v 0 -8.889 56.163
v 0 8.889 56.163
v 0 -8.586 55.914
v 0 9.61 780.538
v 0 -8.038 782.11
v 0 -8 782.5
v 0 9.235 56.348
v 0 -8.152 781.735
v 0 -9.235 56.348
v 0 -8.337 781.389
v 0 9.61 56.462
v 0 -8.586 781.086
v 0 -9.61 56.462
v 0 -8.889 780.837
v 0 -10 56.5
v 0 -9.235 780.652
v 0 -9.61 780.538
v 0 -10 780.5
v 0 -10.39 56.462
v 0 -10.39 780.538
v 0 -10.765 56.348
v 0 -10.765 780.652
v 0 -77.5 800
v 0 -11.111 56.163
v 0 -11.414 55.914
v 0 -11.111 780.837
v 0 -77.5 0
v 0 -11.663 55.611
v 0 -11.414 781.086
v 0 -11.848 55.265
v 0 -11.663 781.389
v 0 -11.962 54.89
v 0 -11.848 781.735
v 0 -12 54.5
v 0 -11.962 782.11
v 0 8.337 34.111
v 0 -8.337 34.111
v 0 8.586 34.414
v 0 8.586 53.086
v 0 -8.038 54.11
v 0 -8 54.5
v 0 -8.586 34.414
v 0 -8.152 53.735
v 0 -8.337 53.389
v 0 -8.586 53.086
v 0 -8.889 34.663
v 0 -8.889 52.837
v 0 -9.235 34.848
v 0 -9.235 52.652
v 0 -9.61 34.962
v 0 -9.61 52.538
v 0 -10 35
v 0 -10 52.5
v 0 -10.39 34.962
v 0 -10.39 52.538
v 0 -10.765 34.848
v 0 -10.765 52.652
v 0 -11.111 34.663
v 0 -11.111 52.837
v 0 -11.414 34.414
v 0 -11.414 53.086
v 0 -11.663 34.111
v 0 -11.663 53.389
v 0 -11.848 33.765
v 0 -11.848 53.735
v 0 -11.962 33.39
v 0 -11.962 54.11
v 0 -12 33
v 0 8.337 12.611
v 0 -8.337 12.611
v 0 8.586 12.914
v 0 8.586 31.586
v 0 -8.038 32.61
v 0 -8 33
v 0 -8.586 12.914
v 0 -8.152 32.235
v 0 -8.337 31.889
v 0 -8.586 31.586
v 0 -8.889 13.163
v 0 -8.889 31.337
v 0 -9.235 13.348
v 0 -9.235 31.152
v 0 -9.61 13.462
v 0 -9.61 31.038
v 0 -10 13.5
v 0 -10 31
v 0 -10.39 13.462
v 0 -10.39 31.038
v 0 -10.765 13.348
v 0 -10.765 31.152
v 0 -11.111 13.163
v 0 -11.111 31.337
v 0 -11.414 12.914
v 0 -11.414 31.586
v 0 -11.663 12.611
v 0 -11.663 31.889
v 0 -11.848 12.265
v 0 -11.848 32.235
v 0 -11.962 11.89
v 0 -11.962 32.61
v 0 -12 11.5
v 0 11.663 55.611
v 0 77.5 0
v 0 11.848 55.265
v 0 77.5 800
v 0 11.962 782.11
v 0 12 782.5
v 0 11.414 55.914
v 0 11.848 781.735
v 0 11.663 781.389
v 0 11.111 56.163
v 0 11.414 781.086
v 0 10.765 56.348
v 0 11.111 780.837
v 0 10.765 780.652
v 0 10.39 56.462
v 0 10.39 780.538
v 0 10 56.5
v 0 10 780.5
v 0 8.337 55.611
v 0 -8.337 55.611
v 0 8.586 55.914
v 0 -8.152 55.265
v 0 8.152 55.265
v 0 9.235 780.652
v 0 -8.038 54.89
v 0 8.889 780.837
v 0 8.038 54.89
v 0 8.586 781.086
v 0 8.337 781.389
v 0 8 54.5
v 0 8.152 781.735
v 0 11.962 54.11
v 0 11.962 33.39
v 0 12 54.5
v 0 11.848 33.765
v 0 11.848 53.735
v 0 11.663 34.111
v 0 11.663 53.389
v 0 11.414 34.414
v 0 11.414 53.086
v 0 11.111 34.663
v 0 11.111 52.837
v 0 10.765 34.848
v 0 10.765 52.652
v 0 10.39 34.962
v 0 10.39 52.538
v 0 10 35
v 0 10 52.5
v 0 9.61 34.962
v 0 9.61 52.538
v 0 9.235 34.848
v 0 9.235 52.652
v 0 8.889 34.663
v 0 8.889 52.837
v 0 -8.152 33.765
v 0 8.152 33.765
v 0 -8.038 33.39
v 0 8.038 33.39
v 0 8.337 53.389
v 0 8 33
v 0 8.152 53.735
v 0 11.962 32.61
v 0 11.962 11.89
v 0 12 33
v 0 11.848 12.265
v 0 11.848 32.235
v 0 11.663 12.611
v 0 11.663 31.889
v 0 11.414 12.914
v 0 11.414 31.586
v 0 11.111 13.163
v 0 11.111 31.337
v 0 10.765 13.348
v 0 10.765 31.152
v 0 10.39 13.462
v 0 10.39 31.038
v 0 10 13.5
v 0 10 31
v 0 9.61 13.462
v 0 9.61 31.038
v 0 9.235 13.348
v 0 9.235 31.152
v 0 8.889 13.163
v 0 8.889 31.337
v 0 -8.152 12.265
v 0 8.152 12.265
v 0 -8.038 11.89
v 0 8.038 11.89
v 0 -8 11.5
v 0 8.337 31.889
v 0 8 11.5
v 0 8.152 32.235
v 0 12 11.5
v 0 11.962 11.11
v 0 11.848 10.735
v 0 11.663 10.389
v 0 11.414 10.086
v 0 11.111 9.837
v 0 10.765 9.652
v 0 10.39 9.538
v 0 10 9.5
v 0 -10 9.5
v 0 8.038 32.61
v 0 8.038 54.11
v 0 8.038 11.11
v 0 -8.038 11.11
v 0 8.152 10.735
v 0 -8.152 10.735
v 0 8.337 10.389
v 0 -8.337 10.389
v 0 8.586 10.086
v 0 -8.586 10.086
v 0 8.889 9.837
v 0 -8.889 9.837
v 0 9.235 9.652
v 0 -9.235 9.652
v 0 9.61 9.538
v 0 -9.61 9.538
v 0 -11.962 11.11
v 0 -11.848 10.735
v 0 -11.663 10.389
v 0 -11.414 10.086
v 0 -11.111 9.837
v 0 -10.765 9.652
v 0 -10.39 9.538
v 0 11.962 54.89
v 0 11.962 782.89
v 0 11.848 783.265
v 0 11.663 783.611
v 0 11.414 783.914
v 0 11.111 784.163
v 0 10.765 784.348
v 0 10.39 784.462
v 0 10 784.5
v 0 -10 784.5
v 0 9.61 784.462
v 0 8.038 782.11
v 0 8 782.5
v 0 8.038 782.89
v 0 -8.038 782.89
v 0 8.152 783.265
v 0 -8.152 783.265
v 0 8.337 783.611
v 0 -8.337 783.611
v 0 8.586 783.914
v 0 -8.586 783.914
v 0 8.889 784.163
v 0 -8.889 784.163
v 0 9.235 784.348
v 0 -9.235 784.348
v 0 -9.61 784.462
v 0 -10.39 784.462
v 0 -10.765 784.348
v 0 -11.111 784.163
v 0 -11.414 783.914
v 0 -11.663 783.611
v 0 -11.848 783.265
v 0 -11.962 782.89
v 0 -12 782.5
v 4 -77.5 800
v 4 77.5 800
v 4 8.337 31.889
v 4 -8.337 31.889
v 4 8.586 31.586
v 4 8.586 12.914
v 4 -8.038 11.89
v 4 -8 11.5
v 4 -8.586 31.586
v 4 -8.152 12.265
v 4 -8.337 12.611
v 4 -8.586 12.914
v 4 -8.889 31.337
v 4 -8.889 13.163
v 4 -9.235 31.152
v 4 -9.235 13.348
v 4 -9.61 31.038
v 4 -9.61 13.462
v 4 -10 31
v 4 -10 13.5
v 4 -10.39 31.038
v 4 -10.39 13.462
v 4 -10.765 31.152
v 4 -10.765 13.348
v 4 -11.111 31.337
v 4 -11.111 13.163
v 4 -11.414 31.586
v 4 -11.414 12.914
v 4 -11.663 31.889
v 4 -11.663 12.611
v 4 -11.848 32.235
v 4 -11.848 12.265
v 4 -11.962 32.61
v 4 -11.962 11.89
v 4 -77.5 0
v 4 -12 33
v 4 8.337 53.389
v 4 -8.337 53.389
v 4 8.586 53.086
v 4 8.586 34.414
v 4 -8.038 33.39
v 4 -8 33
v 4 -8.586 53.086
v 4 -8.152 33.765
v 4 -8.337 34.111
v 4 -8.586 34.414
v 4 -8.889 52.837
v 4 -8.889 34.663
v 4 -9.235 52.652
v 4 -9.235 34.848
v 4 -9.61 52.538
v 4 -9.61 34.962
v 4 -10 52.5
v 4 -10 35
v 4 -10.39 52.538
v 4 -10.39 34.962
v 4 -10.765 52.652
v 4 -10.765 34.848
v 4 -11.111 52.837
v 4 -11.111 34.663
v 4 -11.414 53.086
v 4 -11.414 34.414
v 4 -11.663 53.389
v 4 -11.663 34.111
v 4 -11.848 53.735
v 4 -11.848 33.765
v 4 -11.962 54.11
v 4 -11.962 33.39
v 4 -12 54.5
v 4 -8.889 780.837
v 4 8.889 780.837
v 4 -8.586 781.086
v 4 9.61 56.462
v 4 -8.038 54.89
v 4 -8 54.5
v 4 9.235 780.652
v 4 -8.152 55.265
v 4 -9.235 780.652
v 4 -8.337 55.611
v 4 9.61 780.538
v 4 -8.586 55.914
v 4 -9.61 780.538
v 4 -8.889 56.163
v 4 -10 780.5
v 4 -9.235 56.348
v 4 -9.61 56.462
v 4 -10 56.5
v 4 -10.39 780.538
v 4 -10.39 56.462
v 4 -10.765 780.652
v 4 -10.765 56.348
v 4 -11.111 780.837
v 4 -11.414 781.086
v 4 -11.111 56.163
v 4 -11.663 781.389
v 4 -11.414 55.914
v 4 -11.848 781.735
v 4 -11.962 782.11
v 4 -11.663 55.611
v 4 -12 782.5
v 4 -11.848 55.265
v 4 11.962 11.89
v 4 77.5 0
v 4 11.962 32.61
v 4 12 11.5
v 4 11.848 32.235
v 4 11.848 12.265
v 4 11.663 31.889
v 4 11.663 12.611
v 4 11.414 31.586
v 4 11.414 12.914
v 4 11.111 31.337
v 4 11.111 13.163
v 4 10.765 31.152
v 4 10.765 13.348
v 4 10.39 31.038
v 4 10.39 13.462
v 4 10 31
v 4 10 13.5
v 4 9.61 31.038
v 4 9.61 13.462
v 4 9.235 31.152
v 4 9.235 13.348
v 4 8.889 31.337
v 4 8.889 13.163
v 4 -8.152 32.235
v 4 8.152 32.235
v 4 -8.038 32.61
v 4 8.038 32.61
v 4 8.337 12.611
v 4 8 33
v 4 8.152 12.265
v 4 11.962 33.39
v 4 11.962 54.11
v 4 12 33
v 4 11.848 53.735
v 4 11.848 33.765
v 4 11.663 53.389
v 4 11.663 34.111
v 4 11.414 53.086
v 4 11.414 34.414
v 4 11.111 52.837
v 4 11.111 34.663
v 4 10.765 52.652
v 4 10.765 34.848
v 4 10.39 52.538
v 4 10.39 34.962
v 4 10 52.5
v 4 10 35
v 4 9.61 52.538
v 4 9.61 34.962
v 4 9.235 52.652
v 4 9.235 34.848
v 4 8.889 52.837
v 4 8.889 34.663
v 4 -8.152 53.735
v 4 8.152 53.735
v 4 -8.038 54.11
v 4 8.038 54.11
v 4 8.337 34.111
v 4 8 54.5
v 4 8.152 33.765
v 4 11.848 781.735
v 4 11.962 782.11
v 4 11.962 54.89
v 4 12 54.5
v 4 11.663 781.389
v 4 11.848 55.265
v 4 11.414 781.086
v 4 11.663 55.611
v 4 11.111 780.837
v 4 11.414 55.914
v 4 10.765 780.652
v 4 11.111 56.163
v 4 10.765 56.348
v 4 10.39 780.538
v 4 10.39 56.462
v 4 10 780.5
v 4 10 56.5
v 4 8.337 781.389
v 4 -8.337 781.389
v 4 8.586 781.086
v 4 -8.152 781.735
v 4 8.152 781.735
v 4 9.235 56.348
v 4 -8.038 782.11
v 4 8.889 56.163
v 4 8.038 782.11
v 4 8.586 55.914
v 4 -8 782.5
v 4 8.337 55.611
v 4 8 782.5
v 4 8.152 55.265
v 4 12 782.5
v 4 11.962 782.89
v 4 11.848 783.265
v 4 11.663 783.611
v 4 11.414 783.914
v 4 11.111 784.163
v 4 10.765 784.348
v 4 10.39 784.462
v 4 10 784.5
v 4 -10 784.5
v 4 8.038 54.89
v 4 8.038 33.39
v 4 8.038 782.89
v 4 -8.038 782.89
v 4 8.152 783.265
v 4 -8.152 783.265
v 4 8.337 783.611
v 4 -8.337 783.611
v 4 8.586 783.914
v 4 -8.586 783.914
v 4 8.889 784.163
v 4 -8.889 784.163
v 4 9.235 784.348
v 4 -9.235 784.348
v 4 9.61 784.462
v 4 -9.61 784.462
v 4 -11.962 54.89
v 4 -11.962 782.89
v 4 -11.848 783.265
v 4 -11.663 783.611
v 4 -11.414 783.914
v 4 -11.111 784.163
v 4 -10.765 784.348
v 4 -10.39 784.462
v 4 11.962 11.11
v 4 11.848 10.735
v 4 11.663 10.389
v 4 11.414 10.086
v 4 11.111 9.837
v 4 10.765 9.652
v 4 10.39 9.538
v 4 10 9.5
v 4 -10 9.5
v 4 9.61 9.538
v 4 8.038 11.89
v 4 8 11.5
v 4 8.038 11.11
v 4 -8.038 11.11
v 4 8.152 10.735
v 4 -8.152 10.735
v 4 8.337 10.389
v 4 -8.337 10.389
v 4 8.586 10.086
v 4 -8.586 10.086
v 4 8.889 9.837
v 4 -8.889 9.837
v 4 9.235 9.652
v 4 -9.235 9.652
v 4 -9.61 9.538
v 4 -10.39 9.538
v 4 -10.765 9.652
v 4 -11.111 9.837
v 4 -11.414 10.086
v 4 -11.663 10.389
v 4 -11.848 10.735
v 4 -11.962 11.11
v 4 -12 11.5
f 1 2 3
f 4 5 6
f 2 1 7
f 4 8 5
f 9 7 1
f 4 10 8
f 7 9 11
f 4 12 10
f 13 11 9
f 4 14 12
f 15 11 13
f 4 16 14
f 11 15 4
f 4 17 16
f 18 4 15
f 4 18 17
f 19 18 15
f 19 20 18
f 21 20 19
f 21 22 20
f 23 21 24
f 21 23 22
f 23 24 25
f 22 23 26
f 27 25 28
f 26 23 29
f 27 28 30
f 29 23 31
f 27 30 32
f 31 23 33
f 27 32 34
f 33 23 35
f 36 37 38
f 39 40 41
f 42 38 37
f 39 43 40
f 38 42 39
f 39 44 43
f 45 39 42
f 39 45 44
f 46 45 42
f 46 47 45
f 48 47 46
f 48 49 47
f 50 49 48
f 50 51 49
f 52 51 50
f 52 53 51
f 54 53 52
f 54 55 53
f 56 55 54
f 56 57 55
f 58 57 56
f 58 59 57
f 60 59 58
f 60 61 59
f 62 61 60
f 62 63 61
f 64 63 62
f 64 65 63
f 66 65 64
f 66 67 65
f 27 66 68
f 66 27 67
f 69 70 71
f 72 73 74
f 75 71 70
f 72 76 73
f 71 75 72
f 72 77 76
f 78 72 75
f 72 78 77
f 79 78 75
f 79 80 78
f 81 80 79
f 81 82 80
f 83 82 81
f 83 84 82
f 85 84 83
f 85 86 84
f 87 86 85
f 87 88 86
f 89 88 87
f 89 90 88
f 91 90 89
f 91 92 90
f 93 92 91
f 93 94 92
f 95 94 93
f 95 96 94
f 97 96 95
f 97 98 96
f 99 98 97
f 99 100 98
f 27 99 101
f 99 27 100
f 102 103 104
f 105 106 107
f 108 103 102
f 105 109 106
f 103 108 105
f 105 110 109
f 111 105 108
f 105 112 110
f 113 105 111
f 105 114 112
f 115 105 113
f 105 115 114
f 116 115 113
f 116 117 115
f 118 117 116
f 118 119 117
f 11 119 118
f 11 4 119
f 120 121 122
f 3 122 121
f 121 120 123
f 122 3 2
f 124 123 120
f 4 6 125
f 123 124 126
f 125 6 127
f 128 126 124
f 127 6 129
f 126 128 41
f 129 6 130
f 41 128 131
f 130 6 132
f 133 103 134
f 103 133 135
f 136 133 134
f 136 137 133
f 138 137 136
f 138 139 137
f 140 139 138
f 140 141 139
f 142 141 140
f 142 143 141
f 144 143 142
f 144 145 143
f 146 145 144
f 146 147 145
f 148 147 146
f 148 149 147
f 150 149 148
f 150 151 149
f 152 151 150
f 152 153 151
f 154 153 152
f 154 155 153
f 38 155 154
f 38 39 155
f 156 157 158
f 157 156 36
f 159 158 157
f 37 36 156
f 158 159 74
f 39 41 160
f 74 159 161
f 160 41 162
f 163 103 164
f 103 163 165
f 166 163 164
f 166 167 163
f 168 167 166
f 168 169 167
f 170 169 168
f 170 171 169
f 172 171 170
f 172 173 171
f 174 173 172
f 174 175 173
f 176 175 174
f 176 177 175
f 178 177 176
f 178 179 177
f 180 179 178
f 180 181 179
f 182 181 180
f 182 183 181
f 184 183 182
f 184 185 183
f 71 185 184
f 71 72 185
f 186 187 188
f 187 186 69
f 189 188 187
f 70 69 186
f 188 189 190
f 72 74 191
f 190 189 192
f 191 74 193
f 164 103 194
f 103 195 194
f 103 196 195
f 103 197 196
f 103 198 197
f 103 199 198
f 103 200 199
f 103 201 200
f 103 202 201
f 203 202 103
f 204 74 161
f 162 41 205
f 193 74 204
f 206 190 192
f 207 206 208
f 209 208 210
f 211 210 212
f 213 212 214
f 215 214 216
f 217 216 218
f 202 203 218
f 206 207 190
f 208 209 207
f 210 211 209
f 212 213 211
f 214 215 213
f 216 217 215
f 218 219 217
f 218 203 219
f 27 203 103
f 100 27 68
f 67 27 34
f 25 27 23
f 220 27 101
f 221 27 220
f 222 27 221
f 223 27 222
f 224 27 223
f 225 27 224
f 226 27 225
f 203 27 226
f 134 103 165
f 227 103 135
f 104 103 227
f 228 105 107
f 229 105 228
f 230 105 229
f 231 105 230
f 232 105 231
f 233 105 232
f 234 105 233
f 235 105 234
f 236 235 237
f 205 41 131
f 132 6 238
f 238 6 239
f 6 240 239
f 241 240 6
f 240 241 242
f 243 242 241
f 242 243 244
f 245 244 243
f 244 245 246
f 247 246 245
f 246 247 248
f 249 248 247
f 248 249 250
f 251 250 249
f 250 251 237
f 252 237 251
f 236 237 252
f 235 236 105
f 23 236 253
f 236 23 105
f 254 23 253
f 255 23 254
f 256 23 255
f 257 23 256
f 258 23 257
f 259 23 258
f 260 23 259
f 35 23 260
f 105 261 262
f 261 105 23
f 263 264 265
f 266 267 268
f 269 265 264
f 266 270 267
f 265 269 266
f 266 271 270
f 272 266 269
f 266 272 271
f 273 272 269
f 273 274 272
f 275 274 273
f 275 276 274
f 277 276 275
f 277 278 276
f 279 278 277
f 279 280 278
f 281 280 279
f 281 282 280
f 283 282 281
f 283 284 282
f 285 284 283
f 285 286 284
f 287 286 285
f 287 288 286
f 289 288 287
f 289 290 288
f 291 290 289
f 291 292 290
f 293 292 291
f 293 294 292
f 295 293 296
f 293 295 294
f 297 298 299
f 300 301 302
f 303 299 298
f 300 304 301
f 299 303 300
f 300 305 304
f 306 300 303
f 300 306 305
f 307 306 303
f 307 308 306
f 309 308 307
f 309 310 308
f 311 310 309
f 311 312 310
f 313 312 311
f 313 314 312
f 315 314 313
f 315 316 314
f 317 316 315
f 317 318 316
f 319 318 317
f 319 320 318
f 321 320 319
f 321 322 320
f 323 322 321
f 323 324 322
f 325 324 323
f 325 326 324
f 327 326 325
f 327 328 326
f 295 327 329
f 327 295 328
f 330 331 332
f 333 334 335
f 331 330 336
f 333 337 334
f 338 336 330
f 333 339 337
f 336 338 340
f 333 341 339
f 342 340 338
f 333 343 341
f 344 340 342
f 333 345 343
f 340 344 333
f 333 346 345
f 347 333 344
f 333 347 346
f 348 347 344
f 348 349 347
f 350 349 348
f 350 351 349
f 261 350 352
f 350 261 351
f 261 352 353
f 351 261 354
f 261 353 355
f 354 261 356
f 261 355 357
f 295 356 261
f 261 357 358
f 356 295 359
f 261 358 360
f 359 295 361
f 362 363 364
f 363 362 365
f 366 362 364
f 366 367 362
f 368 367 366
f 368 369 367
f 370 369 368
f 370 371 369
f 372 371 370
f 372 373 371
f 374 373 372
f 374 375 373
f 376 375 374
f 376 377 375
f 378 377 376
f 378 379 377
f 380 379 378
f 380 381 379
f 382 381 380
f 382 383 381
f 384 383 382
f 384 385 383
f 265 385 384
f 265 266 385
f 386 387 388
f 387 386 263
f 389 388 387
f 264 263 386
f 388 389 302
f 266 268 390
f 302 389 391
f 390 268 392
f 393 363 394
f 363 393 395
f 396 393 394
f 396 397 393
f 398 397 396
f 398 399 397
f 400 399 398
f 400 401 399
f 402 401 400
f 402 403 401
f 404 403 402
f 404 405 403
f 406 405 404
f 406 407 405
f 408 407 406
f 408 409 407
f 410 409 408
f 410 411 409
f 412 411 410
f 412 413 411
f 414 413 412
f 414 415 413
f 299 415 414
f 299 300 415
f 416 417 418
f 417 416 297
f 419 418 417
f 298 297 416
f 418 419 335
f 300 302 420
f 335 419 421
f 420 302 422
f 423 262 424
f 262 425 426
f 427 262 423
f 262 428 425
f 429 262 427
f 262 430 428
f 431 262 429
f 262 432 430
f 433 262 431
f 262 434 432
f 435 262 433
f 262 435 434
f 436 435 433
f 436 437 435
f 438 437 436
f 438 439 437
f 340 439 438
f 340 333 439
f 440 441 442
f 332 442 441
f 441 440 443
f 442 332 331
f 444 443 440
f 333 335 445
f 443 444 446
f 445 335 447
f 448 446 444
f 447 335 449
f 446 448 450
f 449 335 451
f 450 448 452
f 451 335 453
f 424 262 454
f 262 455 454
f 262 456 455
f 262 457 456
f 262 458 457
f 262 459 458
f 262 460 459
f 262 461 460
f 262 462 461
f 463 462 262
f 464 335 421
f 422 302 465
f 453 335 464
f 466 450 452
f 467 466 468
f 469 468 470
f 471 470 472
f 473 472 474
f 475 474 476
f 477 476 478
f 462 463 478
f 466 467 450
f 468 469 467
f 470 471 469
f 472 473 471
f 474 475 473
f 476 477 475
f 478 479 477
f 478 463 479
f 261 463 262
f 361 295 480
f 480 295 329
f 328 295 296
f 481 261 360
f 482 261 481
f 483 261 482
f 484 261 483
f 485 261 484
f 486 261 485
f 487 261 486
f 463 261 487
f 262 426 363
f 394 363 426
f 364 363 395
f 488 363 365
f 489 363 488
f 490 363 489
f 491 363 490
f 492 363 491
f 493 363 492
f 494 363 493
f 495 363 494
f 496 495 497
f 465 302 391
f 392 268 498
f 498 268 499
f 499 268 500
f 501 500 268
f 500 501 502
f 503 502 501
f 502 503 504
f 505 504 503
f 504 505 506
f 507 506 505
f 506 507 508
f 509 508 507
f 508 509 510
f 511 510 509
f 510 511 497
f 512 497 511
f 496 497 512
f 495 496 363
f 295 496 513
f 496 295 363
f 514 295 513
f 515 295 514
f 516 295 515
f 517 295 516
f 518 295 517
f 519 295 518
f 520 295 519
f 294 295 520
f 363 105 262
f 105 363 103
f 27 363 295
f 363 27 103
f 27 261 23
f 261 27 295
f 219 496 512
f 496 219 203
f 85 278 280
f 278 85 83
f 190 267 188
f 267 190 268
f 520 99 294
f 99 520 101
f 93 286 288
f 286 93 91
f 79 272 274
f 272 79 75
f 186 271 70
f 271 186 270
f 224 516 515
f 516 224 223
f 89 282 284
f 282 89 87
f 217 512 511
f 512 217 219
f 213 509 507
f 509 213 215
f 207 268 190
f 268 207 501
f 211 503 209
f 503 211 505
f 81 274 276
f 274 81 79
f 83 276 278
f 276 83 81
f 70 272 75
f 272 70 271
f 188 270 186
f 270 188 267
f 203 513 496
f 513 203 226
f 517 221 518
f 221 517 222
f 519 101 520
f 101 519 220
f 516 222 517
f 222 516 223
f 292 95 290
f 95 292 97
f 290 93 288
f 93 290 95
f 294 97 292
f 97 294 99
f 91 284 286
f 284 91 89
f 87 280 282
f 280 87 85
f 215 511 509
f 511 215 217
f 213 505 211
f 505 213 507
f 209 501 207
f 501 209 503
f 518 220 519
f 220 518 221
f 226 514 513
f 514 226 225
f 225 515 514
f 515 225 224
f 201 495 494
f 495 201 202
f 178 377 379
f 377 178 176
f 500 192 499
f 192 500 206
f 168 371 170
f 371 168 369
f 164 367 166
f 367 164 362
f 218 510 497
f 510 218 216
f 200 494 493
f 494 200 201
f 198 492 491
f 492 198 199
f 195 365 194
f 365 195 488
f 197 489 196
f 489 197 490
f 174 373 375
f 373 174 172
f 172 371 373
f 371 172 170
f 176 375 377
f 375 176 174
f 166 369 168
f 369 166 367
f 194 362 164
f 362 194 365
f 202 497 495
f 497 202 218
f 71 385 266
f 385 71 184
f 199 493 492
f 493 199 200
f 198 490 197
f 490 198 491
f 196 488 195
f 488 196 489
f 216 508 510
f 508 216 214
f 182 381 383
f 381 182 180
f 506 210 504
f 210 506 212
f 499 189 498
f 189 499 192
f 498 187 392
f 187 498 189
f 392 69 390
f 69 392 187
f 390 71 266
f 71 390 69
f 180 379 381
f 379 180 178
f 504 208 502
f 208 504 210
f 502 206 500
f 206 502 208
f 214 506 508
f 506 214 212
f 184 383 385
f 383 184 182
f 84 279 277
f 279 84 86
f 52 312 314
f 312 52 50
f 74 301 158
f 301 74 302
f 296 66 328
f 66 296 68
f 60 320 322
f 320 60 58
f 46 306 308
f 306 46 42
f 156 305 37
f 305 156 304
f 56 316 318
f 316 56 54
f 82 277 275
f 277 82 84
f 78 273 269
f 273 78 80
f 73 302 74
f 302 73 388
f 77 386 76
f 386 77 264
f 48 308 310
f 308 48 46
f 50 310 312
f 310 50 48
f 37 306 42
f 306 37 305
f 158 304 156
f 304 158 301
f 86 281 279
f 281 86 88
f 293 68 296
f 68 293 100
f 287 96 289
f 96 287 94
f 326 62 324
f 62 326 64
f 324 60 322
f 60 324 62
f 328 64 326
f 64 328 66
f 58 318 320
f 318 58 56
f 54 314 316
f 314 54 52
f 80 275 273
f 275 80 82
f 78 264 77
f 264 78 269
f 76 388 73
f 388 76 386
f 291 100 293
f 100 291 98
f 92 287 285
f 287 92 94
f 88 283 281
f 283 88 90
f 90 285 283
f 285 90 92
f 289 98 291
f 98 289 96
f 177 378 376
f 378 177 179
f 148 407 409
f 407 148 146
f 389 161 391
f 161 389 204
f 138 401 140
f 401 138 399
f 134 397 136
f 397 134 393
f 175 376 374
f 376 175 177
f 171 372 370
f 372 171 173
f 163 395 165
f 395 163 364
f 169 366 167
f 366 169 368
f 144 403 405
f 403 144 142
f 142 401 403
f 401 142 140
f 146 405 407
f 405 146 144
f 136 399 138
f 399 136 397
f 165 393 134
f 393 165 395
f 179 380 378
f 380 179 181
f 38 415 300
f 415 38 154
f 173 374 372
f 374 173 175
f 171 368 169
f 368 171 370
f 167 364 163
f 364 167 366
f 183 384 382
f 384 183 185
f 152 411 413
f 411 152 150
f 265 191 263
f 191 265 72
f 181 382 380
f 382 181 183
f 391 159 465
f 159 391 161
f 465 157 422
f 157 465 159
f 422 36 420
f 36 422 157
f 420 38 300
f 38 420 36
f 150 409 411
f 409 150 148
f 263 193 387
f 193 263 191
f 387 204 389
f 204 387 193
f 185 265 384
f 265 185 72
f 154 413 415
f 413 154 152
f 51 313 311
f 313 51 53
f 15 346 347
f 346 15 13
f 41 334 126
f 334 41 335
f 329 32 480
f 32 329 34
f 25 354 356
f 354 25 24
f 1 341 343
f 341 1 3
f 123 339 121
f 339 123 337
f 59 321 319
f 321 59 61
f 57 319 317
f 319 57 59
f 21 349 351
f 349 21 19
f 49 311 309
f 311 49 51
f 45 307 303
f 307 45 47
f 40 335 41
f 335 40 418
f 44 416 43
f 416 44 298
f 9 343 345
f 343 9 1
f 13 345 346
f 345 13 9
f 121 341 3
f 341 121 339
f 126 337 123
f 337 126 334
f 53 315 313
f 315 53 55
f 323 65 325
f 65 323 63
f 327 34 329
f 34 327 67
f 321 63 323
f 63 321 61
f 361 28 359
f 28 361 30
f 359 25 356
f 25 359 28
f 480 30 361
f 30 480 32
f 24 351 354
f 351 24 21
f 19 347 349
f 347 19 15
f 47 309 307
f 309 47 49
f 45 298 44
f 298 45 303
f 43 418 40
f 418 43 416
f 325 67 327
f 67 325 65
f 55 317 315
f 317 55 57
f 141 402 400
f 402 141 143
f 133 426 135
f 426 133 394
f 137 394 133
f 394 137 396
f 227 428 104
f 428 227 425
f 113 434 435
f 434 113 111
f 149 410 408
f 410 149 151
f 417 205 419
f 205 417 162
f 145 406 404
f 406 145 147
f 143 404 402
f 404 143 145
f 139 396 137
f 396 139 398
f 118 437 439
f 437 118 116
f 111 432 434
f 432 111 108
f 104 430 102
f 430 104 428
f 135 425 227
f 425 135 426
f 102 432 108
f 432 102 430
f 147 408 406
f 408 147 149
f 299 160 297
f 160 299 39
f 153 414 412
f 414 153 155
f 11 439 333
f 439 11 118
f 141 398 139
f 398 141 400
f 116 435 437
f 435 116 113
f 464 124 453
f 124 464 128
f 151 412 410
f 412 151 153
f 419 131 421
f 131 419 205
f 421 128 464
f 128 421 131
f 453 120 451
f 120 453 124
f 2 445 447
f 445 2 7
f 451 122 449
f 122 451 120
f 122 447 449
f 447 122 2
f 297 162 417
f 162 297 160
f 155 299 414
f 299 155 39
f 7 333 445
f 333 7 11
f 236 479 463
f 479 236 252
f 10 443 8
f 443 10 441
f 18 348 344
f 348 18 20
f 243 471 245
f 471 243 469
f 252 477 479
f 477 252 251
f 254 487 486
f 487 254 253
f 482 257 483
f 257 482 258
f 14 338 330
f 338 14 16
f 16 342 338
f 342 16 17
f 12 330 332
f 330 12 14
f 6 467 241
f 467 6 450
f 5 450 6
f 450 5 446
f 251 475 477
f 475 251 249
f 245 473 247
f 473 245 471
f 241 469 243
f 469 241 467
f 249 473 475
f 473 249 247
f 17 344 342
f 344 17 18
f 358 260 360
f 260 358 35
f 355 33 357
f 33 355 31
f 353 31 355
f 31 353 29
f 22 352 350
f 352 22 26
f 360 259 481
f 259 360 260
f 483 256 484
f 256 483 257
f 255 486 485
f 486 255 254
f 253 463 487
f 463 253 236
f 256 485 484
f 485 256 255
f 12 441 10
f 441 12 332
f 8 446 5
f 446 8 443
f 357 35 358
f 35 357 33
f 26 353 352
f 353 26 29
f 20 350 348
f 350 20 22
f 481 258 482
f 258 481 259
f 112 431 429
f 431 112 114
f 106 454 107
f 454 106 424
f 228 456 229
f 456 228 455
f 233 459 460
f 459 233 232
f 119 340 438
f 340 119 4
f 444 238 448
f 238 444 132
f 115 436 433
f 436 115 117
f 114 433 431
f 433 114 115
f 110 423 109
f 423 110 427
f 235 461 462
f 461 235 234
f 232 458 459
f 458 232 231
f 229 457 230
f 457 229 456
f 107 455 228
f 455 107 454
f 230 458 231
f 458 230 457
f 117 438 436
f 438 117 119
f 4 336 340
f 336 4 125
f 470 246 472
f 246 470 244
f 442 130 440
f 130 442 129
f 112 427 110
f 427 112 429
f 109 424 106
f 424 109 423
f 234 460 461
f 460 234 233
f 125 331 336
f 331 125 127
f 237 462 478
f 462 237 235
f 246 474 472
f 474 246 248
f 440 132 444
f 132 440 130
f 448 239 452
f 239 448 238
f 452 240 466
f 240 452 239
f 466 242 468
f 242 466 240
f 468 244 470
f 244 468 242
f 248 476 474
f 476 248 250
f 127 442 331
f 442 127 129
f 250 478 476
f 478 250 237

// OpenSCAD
/**********************************************************************************************************************
 **
 ** parts/sheets/enclosure_short_side.scad
 **
 ** This file generates the intransparent parts of the enclosure that mount to the vertical rails.
 ** This file is intended to be included by other files down the line.
 **
 **********************************************************************************************************************/

include <../../conf/colors.scad>
include <../../conf/derived_sizes.scad>
include <../../conf/part_sizes.scad>

use <../../bom/bom.scad>

use <../../parts/vitamins/vitamins.scad>

/**
 * Provides the pre-rendered plate. 
 */
module enclosure_short_side_plate() {
	bom_entry(section = "Sheet / Multiplex Plywood", 
		      description = "Enclosure Short Side Plate", 
		      size = str(enclosure_short_side_width(), " x ", enclosure_short_side_height(), " x ", enclosure_short_side_thickness(), "  mm"));
	color_enclosure_solid()
		import(file = "enclosure_short_side.stl"); 
}

/**
 * Renders a screw hole.
 */
module _enclosure_short_side_screw_hole() {
	translate([-epsilon(), 0, 0])	
		rotate([0, 90, 0])
			cylinder(d = frame_screw_size(), 
				     h = enclosure_short_side_thickness() + 2 * epsilon(), 
			     	 $fn = enclosure_hole_resolution());	
}

/**
 * Renders a screw and washer.
 */
module _enclosure_short_side_screw() {
	translate([-washer_thickness(frame_screw_size()) - epsilon(), 0, 0]) 
		washer(frame_screw_size());
	translate([-washer_thickness(frame_screw_size()) - 2 * epsilon(), 0, 0]) 
		screw(size = frame_screw_size(), min_length = 8 + enclosure_short_side_thickness() + enclosure_insulation_thickness());
	nut_tslot(frame_screw_size());	
}

/** 
 * Renders the plate. This module is not intended to be called outside of this file.
 */
module _render_enclosure_short_side_plate() {
	difference() {
		// the base plate
		translate([0, -enclosure_short_side_width()/2, 0])
			cube([enclosure_short_side_thickness(), 
				  enclosure_short_side_width(),
				  enclosure_short_side_height()]);

		// minus the mounting holes through the foot
		translate([0, -makerslide_slot_offset(), foot_vertical_back_screw_height()])
			_enclosure_short_side_screw_hole();
		translate([0, makerslide_slot_offset(), foot_vertical_back_screw_height()])
			_enclosure_short_side_screw_hole();

		// minus the mounting holes through the motor bracket
		translate([0, -makerslide_slot_offset(), motor_bracket_screw_height()])
			_enclosure_short_side_screw_hole();
		translate([0, makerslide_slot_offset(), motor_bracket_screw_height()])
			_enclosure_short_side_screw_hole();

		// minus the mounting holes through the bed bracket
		translate([0, -makerslide_slot_offset(), bed_bracket_back_screw_height()])
			_enclosure_short_side_screw_hole();
		translate([0, makerslide_slot_offset(), bed_bracket_back_screw_height()])
			_enclosure_short_side_screw_hole();

		// minus the mounting holes through the head
		translate([0, -makerslide_slot_offset(), head_back_screw_height()])
			_enclosure_short_side_screw_hole();
		translate([0, makerslide_slot_offset(), head_back_screw_height()])
			_enclosure_short_side_screw_hole();

	}

}

/**
 * Provides the hardware to mount the plate.
 */
module enclosure_short_side_plate_hardware() {
		// the mounting screws through the foot
		translate([0, -makerslide_slot_offset(), foot_vertical_back_screw_height()])
			_enclosure_short_side_screw();
		translate([0, makerslide_slot_offset(), foot_vertical_back_screw_height()])
			_enclosure_short_side_screw();

		// the mounting screws through the motor bracket
		// translate([0, -makerslide_slot_offset(), motor_bracket_screw_height()])
		// 	_enclosure_short_side_screw();
		// translate([0, makerslide_slot_offset(), motor_bracket_screw_height()])
		// 	_enclosure_short_side_screw();

		// the mounting screws through the bed bracket
		translate([0, -makerslide_slot_offset(), bed_bracket_back_screw_height()])
			_enclosure_short_side_screw();
		translate([0, makerslide_slot_offset(), bed_bracket_back_screw_height()])
			_enclosure_short_side_screw();

		// the mounting screws through the head
		translate([0, -makerslide_slot_offset(), head_back_screw_height()])
			_enclosure_short_side_screw();
		translate([0, makerslide_slot_offset(), head_back_screw_height()])
			_enclosure_short_side_screw();
}

_render_enclosure_short_side_plate();
